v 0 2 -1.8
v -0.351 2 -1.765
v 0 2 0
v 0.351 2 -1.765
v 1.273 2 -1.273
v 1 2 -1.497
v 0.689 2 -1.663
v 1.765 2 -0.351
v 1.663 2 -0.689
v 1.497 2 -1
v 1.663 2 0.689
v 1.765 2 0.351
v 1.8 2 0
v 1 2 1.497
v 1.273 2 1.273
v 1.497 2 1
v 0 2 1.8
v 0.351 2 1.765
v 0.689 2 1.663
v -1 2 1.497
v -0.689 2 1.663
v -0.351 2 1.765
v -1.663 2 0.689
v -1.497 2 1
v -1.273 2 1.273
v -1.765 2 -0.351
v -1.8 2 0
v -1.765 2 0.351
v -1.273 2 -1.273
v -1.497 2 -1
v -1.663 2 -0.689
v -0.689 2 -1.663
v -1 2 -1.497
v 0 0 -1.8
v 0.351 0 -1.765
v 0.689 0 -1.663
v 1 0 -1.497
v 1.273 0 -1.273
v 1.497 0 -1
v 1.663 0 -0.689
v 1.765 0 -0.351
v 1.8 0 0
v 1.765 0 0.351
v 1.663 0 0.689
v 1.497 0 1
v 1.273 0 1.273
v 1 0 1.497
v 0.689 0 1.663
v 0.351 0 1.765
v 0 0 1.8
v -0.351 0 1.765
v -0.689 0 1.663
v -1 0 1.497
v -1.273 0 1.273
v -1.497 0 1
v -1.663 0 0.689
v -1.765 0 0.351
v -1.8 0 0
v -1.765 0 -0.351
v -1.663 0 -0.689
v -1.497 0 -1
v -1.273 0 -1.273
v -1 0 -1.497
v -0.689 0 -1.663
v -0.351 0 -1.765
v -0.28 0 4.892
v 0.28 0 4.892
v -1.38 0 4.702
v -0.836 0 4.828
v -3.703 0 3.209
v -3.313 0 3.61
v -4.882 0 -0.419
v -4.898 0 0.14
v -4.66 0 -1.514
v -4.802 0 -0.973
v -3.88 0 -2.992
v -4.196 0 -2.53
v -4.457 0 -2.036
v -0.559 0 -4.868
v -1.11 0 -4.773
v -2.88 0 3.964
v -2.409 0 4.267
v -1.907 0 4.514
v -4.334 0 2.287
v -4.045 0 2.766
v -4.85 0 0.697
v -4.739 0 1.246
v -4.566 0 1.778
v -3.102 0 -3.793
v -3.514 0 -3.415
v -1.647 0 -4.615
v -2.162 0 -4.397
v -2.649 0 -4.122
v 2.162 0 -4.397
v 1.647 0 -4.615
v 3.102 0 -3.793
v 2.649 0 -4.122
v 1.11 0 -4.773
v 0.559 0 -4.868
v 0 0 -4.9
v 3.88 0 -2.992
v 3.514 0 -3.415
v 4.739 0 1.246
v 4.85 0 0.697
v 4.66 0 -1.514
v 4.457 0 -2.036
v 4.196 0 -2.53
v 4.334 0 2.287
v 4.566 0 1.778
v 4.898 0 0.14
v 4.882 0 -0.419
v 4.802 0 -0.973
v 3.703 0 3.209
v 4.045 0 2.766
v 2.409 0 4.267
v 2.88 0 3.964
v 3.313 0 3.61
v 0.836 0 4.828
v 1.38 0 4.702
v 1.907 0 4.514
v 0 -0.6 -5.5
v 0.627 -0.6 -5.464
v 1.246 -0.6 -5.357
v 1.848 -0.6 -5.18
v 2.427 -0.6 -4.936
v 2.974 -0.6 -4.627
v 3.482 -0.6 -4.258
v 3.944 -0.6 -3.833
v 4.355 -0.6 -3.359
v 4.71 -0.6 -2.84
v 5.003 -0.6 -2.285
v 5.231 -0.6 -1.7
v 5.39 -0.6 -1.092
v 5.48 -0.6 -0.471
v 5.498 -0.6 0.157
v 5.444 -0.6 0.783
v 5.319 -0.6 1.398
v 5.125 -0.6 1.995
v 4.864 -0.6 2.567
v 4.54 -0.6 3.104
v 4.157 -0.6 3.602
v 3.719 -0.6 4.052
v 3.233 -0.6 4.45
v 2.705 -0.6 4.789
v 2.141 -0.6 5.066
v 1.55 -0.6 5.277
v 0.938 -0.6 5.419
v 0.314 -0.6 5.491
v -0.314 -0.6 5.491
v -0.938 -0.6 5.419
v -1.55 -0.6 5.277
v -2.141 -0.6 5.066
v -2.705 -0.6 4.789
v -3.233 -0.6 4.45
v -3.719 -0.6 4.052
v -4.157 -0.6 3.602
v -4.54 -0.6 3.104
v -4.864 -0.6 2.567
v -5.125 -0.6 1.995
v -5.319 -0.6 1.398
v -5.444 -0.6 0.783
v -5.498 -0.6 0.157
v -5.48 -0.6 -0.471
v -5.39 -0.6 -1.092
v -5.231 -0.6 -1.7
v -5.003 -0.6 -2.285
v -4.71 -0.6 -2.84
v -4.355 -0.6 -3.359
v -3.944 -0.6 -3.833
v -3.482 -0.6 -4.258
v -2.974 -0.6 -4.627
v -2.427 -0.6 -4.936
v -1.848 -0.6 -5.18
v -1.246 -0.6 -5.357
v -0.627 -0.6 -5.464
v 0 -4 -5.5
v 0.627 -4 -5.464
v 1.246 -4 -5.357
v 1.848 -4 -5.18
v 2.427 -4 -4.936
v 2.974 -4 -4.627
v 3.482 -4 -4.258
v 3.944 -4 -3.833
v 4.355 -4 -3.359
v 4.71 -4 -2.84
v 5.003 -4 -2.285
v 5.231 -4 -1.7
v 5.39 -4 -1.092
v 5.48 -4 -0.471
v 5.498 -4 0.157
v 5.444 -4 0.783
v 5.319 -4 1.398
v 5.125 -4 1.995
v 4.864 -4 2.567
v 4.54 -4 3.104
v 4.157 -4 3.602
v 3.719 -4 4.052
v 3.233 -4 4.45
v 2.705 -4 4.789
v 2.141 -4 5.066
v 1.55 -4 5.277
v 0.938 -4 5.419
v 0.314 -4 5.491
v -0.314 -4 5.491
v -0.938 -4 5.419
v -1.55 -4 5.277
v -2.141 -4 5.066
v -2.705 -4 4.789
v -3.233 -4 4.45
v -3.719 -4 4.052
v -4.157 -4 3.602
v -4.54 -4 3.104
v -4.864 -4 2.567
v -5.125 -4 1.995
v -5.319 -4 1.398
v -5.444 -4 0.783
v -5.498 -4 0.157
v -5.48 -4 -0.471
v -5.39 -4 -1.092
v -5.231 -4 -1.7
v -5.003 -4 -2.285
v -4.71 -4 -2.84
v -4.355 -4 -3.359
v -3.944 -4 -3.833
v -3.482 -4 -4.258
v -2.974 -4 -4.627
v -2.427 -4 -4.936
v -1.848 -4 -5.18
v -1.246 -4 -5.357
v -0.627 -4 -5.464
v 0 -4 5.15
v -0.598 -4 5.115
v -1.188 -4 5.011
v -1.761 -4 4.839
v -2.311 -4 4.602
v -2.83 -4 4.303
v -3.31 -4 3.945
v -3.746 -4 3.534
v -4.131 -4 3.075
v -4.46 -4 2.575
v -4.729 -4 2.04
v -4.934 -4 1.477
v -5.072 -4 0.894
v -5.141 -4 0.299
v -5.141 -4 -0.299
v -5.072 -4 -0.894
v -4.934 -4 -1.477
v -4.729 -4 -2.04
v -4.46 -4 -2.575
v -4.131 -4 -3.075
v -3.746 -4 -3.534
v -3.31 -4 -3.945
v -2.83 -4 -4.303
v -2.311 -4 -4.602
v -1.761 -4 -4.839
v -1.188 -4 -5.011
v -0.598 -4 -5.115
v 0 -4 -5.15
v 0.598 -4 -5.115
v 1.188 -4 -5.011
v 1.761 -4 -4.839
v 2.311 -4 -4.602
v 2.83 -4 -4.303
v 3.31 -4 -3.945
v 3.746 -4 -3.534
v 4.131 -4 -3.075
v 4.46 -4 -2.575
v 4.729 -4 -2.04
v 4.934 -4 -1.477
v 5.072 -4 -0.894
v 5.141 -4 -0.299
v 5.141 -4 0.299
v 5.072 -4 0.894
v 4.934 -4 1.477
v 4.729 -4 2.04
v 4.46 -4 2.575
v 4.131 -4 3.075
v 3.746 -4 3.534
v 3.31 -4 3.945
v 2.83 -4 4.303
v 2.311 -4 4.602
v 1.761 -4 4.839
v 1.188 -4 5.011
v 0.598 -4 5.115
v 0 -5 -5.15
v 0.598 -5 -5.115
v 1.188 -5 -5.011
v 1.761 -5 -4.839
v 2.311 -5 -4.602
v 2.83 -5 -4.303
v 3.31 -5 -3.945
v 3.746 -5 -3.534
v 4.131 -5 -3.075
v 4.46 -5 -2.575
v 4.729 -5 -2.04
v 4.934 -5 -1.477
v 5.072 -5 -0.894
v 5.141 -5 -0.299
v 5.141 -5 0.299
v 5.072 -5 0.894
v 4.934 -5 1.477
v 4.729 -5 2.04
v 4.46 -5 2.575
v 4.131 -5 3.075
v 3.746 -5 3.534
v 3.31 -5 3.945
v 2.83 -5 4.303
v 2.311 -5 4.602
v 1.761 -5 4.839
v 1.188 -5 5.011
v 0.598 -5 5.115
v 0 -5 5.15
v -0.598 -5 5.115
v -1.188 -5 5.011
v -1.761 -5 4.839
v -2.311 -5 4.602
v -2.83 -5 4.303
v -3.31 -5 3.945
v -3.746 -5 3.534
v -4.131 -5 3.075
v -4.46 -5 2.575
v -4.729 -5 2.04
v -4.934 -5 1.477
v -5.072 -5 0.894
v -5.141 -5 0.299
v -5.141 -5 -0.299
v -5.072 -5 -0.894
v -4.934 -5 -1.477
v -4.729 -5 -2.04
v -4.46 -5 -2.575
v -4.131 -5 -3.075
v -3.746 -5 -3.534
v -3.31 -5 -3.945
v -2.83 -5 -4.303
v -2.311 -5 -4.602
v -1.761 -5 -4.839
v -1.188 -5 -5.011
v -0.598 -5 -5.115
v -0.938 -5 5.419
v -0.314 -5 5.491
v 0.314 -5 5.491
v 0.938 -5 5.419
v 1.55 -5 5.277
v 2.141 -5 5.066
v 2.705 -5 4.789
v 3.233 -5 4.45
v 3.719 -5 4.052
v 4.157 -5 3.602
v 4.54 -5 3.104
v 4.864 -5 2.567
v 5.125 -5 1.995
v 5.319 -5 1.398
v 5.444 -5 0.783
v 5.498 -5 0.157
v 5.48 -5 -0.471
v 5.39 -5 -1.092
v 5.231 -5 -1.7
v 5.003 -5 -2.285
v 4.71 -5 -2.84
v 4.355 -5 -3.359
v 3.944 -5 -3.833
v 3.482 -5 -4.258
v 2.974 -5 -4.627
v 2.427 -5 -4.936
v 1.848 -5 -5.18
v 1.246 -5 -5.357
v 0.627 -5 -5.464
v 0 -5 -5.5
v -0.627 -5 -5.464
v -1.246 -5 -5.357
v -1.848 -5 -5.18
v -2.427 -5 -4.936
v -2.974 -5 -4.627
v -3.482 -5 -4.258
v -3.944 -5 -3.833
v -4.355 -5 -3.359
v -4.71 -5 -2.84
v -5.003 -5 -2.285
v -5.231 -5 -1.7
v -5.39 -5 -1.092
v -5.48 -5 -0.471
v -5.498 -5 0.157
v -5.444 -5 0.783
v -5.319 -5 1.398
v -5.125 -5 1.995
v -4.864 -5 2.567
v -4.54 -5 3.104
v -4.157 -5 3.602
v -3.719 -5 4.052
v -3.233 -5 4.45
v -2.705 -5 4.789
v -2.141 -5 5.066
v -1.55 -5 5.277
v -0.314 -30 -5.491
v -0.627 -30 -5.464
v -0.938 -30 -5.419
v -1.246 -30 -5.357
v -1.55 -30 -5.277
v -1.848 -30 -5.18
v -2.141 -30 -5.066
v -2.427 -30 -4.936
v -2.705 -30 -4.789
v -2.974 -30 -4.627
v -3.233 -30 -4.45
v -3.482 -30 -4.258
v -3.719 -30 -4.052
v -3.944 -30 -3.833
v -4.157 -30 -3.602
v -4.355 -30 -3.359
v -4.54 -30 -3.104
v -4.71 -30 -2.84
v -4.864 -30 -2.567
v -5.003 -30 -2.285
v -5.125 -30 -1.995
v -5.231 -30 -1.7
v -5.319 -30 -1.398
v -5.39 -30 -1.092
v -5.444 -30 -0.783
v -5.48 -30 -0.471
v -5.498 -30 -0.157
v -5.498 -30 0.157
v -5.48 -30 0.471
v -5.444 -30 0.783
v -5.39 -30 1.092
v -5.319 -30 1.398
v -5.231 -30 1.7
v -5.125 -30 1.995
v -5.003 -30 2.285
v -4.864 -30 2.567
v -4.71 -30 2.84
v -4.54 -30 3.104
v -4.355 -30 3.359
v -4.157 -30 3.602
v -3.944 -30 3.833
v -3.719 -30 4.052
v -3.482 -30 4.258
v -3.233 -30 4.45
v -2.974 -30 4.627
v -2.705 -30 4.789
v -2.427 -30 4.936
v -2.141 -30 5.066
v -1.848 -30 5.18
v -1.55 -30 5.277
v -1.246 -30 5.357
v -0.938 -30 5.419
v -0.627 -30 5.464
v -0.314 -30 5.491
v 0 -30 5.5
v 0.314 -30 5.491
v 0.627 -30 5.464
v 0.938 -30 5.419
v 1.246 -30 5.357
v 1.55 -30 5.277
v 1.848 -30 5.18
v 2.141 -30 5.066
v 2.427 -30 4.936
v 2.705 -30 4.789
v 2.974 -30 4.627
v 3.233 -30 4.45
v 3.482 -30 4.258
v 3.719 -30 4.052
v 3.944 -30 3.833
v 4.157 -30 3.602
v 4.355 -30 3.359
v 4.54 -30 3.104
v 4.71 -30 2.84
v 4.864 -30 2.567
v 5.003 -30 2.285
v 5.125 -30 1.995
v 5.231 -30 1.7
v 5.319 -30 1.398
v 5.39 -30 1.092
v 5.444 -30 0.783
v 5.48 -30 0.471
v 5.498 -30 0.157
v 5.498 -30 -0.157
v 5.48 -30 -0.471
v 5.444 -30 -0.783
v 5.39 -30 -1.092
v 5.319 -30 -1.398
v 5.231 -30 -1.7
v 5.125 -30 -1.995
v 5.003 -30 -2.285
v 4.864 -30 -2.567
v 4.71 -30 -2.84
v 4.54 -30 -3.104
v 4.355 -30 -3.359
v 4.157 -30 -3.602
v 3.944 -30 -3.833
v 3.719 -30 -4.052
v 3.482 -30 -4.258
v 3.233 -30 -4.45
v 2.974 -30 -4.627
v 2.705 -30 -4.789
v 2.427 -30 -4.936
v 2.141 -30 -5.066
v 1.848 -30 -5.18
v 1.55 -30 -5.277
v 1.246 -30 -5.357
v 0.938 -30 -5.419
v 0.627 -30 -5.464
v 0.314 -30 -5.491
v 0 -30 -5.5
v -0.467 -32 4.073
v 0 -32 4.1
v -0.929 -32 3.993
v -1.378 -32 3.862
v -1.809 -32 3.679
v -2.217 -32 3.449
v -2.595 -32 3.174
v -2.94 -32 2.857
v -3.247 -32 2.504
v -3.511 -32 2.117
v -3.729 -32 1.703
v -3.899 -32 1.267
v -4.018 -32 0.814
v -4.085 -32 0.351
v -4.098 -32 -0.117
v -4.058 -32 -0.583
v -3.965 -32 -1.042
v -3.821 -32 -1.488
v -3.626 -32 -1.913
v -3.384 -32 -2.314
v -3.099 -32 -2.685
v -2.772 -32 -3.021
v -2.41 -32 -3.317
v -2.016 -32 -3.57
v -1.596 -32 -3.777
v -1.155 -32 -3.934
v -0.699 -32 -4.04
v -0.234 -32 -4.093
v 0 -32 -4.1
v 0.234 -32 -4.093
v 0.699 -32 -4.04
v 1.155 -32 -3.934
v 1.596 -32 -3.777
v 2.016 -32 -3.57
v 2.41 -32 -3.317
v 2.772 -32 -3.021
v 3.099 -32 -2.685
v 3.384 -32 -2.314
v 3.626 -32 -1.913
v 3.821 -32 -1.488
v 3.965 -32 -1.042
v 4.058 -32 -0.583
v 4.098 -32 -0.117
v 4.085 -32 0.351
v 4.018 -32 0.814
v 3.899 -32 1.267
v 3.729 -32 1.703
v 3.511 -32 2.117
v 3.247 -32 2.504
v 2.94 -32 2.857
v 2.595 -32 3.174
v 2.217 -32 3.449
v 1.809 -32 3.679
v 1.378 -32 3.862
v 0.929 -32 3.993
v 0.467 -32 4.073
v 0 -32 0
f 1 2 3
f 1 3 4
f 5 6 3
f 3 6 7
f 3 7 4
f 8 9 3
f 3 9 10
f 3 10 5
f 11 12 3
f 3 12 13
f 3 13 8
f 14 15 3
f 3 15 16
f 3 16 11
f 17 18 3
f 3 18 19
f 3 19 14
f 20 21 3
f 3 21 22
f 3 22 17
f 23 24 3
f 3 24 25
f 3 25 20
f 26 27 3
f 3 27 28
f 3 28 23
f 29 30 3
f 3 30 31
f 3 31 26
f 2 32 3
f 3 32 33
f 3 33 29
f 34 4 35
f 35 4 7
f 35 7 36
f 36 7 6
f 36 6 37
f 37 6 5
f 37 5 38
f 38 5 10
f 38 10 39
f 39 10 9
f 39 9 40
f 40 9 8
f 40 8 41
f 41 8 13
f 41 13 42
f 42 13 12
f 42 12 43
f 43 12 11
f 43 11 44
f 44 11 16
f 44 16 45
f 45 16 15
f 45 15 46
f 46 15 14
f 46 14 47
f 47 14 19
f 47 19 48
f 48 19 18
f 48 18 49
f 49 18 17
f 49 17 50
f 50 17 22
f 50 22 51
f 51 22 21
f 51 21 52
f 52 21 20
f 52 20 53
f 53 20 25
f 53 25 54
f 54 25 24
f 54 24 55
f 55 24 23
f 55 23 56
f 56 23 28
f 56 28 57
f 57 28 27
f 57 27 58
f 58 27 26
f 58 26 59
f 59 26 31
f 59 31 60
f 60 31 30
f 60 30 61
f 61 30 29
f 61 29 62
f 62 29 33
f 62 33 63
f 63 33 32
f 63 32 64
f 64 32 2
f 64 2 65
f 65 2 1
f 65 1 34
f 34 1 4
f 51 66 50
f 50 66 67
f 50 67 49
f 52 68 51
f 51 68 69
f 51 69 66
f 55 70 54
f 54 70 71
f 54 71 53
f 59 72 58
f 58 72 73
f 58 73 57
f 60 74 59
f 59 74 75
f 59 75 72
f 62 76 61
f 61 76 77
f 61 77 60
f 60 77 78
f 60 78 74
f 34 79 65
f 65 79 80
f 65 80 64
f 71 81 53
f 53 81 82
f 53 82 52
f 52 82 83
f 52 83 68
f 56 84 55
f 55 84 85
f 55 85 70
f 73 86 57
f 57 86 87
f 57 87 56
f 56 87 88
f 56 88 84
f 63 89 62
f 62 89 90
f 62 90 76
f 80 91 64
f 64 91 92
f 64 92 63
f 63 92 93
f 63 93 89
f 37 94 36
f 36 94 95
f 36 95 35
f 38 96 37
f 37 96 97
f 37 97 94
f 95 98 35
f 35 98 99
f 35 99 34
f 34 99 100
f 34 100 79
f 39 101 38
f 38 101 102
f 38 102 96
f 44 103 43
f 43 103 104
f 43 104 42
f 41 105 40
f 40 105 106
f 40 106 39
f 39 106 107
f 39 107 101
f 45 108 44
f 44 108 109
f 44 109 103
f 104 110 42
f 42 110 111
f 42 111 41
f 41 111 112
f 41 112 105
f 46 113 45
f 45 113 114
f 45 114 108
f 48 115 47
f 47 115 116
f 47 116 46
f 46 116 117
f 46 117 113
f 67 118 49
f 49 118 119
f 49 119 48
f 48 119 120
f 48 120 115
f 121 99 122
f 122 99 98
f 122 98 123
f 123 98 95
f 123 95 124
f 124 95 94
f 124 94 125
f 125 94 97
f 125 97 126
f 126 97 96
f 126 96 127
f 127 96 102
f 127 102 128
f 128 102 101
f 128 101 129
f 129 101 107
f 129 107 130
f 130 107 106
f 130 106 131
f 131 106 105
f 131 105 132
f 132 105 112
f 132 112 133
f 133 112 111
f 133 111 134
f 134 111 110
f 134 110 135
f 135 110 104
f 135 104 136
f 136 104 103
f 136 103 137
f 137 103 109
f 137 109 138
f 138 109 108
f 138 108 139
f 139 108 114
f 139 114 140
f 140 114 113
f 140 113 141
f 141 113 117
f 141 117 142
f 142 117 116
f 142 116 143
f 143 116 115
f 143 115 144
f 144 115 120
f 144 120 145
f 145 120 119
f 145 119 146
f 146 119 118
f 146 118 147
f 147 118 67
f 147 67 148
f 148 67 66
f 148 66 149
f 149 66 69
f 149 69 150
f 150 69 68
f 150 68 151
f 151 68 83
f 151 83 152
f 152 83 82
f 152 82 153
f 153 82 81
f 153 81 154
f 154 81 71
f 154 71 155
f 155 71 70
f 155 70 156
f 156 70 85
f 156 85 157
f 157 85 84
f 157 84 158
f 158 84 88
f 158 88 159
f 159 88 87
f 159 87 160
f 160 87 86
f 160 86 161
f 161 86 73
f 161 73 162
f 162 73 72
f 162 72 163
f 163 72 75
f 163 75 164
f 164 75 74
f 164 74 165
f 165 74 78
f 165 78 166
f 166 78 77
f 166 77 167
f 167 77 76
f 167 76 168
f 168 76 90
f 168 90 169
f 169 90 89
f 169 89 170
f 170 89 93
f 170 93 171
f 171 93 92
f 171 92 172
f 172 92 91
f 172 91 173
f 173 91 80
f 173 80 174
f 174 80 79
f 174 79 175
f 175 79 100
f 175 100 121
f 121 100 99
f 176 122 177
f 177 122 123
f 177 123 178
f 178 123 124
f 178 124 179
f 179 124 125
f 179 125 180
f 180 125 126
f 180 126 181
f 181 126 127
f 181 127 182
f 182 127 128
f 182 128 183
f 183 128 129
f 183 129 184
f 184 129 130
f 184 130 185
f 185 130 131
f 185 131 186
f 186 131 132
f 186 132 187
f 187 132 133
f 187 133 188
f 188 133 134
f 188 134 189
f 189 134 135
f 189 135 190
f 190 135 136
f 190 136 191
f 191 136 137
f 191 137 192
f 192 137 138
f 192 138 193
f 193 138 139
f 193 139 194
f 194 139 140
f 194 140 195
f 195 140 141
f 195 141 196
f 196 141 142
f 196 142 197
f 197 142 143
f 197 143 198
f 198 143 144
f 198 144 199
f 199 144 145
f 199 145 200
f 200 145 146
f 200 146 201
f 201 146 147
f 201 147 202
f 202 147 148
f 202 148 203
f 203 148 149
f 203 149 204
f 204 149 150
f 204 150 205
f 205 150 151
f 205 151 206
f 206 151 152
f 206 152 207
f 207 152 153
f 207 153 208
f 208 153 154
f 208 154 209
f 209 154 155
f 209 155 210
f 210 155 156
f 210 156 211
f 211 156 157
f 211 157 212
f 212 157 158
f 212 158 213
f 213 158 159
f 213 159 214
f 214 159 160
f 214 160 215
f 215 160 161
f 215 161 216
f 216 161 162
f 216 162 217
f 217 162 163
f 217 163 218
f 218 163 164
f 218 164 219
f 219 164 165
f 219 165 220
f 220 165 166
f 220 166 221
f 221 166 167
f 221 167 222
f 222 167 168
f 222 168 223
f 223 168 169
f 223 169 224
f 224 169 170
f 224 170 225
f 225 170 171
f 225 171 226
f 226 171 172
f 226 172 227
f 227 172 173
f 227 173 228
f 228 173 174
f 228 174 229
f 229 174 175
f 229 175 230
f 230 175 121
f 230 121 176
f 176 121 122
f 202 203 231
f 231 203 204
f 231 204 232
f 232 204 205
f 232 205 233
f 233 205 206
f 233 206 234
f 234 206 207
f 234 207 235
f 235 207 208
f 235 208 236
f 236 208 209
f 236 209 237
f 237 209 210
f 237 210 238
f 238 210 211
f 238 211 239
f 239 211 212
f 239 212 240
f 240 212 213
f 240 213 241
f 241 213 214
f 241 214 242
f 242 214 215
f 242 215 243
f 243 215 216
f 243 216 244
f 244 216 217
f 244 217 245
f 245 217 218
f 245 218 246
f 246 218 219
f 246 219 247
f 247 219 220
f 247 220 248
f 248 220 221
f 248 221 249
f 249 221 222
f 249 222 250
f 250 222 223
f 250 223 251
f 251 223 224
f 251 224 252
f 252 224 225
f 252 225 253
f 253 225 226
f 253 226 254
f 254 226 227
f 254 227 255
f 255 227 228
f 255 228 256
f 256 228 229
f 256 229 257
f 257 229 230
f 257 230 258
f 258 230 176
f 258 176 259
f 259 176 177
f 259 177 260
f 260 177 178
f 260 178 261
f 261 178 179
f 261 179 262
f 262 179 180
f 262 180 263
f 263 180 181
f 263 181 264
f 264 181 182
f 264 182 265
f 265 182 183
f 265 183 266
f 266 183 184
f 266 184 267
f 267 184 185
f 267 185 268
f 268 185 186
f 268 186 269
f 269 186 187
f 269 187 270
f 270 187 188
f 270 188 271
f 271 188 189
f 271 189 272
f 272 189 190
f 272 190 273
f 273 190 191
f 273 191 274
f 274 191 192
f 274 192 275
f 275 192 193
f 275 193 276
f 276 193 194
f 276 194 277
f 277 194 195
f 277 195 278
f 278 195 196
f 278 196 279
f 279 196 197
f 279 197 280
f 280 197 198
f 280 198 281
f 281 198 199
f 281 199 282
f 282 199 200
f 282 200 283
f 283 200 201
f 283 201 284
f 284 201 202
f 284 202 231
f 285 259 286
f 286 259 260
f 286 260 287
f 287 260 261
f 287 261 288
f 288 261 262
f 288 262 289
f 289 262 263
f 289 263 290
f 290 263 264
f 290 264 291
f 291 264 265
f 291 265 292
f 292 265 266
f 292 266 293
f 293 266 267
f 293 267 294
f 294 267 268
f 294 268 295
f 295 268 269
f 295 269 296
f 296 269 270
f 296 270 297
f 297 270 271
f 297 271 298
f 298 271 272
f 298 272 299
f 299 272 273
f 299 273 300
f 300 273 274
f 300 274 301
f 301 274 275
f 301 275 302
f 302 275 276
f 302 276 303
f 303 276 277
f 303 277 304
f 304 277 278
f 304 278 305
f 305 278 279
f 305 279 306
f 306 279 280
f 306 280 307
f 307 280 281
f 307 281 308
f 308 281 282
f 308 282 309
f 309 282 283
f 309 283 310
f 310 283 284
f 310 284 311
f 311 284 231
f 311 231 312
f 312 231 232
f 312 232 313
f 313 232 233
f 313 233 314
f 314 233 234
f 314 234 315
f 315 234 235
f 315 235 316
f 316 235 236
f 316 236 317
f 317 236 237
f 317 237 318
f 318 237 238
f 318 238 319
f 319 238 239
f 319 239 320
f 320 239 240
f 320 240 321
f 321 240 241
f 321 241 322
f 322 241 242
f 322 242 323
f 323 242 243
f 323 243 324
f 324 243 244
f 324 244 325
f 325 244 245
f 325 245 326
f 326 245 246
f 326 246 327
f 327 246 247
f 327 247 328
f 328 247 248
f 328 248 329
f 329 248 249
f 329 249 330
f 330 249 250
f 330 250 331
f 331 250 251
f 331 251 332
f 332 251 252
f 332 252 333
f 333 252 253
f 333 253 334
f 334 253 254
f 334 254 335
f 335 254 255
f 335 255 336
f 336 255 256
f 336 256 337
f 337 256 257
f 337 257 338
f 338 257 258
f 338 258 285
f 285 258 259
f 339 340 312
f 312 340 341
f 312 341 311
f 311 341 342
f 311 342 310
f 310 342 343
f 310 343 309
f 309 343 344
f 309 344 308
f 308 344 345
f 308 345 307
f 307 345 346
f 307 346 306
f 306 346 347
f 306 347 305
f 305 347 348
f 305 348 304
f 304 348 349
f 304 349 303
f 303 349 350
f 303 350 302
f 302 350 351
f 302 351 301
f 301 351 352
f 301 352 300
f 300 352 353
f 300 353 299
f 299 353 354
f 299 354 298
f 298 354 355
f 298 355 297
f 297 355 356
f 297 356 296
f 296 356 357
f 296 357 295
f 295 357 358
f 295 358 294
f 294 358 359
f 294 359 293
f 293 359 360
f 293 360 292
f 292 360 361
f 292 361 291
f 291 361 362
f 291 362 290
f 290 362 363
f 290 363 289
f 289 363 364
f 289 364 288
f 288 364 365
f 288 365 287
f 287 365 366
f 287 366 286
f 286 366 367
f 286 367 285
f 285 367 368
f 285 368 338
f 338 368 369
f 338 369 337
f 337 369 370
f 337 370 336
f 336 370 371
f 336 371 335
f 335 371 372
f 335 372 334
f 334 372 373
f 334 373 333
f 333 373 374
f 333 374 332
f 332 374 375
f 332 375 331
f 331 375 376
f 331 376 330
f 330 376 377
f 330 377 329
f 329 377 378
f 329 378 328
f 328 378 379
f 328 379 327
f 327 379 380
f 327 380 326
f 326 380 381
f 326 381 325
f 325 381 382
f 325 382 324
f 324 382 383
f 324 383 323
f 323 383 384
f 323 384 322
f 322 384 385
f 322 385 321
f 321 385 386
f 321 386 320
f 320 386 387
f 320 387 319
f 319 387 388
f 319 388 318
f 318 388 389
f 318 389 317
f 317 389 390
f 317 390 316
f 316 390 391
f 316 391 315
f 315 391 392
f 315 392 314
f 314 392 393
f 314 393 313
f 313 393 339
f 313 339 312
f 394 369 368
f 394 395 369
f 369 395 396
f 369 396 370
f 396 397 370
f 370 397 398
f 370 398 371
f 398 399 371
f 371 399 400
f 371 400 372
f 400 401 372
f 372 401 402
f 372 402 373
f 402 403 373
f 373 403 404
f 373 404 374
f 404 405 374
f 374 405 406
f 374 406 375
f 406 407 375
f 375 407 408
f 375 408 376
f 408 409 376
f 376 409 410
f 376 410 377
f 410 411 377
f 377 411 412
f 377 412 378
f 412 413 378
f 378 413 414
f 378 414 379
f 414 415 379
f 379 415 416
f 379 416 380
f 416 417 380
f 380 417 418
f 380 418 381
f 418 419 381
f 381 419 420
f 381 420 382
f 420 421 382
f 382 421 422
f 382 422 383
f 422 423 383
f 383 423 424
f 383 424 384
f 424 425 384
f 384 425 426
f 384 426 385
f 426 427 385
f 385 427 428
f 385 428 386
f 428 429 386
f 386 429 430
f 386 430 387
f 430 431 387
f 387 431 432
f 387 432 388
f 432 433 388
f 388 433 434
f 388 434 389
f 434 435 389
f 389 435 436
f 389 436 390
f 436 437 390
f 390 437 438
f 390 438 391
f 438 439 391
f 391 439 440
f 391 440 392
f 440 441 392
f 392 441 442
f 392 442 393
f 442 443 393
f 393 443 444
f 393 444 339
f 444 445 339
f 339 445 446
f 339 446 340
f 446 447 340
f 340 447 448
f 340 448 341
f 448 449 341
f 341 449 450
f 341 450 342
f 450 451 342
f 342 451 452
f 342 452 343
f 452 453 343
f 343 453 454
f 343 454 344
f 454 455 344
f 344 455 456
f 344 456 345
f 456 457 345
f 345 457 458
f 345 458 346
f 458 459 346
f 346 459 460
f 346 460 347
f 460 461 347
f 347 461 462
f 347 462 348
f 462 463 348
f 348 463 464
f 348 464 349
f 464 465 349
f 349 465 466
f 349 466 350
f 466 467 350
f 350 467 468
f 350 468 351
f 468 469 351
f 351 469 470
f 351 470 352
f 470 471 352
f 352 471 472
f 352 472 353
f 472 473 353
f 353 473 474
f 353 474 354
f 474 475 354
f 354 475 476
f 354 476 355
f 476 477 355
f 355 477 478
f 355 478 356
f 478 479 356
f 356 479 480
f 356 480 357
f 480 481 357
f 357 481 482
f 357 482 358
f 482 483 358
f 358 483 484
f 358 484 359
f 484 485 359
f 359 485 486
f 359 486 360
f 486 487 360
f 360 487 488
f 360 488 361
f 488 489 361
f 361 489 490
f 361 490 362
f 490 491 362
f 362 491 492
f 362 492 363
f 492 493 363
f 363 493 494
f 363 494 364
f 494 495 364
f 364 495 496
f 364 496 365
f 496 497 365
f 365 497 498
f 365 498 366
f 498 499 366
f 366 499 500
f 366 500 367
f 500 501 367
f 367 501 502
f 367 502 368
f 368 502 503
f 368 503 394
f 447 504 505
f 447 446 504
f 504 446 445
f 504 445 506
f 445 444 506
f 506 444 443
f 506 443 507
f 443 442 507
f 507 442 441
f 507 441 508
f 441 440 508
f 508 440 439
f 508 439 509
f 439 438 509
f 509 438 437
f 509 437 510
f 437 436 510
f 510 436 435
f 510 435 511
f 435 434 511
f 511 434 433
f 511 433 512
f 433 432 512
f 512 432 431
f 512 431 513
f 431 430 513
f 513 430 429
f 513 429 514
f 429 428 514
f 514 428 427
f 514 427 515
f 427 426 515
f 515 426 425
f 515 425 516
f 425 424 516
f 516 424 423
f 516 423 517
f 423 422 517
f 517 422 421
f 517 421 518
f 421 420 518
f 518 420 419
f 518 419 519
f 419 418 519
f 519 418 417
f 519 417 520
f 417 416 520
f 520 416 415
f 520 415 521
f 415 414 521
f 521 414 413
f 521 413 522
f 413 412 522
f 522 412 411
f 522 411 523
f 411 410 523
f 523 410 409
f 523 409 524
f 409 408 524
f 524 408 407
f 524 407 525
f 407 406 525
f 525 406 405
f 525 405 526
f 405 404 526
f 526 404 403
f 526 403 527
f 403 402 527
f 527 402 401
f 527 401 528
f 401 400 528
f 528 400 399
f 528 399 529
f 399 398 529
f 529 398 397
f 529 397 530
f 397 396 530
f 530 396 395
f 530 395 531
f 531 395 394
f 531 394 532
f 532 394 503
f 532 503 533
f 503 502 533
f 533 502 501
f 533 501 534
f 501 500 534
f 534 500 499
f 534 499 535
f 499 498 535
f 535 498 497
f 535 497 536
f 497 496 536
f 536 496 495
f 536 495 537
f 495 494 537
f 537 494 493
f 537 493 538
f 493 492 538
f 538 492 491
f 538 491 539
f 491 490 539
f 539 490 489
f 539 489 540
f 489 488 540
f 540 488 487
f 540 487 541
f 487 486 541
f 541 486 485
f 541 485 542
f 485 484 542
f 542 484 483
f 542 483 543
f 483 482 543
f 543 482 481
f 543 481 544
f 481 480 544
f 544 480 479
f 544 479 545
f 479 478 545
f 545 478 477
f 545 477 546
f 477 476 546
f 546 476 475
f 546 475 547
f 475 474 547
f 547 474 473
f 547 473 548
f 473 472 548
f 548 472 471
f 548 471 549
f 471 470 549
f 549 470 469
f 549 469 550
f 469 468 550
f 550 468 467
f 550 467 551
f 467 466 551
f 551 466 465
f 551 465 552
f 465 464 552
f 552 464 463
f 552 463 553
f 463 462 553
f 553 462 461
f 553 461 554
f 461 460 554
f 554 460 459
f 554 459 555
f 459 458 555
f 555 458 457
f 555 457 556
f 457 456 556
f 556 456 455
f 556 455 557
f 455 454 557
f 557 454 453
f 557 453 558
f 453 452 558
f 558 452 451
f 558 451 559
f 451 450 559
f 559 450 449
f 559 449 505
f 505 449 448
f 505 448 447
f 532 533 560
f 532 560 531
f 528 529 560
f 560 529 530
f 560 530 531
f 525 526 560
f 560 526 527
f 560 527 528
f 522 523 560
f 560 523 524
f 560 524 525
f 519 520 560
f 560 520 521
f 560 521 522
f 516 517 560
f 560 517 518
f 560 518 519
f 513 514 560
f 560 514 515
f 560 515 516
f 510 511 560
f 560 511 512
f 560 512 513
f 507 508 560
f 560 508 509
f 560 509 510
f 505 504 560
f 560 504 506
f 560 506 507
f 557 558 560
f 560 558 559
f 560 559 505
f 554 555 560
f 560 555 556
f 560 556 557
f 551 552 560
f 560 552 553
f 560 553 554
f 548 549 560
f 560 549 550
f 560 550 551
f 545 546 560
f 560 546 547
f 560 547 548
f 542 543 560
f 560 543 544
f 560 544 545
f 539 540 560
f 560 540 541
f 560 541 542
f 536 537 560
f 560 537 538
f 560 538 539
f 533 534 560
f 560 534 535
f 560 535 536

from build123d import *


with BuildPart() as part:
    # Sketch1 → Carcasa_motor_reductora (revolve)
    with BuildSketch(Plane.XY, mode=Mode.PRIVATE) as carcasa_motor_reductora_sk:
        Polygon((0, 2), (1.8, 2), (1.8, 0), (4.9, 0), (5.5, -0.6), (5.5, -4), (5.15, -4), (5.15, -5), (5.5, -5), (5.5, -30), (4.1, -32), (0, -32), align=None)
    revolve(carcasa_motor_reductora_sk.sketch.rotate(Axis((0, -36, 0), (0, 1, 0)), 90), axis=Axis((0, -36, 0), (0, 1, 0)))


solid = part.part
